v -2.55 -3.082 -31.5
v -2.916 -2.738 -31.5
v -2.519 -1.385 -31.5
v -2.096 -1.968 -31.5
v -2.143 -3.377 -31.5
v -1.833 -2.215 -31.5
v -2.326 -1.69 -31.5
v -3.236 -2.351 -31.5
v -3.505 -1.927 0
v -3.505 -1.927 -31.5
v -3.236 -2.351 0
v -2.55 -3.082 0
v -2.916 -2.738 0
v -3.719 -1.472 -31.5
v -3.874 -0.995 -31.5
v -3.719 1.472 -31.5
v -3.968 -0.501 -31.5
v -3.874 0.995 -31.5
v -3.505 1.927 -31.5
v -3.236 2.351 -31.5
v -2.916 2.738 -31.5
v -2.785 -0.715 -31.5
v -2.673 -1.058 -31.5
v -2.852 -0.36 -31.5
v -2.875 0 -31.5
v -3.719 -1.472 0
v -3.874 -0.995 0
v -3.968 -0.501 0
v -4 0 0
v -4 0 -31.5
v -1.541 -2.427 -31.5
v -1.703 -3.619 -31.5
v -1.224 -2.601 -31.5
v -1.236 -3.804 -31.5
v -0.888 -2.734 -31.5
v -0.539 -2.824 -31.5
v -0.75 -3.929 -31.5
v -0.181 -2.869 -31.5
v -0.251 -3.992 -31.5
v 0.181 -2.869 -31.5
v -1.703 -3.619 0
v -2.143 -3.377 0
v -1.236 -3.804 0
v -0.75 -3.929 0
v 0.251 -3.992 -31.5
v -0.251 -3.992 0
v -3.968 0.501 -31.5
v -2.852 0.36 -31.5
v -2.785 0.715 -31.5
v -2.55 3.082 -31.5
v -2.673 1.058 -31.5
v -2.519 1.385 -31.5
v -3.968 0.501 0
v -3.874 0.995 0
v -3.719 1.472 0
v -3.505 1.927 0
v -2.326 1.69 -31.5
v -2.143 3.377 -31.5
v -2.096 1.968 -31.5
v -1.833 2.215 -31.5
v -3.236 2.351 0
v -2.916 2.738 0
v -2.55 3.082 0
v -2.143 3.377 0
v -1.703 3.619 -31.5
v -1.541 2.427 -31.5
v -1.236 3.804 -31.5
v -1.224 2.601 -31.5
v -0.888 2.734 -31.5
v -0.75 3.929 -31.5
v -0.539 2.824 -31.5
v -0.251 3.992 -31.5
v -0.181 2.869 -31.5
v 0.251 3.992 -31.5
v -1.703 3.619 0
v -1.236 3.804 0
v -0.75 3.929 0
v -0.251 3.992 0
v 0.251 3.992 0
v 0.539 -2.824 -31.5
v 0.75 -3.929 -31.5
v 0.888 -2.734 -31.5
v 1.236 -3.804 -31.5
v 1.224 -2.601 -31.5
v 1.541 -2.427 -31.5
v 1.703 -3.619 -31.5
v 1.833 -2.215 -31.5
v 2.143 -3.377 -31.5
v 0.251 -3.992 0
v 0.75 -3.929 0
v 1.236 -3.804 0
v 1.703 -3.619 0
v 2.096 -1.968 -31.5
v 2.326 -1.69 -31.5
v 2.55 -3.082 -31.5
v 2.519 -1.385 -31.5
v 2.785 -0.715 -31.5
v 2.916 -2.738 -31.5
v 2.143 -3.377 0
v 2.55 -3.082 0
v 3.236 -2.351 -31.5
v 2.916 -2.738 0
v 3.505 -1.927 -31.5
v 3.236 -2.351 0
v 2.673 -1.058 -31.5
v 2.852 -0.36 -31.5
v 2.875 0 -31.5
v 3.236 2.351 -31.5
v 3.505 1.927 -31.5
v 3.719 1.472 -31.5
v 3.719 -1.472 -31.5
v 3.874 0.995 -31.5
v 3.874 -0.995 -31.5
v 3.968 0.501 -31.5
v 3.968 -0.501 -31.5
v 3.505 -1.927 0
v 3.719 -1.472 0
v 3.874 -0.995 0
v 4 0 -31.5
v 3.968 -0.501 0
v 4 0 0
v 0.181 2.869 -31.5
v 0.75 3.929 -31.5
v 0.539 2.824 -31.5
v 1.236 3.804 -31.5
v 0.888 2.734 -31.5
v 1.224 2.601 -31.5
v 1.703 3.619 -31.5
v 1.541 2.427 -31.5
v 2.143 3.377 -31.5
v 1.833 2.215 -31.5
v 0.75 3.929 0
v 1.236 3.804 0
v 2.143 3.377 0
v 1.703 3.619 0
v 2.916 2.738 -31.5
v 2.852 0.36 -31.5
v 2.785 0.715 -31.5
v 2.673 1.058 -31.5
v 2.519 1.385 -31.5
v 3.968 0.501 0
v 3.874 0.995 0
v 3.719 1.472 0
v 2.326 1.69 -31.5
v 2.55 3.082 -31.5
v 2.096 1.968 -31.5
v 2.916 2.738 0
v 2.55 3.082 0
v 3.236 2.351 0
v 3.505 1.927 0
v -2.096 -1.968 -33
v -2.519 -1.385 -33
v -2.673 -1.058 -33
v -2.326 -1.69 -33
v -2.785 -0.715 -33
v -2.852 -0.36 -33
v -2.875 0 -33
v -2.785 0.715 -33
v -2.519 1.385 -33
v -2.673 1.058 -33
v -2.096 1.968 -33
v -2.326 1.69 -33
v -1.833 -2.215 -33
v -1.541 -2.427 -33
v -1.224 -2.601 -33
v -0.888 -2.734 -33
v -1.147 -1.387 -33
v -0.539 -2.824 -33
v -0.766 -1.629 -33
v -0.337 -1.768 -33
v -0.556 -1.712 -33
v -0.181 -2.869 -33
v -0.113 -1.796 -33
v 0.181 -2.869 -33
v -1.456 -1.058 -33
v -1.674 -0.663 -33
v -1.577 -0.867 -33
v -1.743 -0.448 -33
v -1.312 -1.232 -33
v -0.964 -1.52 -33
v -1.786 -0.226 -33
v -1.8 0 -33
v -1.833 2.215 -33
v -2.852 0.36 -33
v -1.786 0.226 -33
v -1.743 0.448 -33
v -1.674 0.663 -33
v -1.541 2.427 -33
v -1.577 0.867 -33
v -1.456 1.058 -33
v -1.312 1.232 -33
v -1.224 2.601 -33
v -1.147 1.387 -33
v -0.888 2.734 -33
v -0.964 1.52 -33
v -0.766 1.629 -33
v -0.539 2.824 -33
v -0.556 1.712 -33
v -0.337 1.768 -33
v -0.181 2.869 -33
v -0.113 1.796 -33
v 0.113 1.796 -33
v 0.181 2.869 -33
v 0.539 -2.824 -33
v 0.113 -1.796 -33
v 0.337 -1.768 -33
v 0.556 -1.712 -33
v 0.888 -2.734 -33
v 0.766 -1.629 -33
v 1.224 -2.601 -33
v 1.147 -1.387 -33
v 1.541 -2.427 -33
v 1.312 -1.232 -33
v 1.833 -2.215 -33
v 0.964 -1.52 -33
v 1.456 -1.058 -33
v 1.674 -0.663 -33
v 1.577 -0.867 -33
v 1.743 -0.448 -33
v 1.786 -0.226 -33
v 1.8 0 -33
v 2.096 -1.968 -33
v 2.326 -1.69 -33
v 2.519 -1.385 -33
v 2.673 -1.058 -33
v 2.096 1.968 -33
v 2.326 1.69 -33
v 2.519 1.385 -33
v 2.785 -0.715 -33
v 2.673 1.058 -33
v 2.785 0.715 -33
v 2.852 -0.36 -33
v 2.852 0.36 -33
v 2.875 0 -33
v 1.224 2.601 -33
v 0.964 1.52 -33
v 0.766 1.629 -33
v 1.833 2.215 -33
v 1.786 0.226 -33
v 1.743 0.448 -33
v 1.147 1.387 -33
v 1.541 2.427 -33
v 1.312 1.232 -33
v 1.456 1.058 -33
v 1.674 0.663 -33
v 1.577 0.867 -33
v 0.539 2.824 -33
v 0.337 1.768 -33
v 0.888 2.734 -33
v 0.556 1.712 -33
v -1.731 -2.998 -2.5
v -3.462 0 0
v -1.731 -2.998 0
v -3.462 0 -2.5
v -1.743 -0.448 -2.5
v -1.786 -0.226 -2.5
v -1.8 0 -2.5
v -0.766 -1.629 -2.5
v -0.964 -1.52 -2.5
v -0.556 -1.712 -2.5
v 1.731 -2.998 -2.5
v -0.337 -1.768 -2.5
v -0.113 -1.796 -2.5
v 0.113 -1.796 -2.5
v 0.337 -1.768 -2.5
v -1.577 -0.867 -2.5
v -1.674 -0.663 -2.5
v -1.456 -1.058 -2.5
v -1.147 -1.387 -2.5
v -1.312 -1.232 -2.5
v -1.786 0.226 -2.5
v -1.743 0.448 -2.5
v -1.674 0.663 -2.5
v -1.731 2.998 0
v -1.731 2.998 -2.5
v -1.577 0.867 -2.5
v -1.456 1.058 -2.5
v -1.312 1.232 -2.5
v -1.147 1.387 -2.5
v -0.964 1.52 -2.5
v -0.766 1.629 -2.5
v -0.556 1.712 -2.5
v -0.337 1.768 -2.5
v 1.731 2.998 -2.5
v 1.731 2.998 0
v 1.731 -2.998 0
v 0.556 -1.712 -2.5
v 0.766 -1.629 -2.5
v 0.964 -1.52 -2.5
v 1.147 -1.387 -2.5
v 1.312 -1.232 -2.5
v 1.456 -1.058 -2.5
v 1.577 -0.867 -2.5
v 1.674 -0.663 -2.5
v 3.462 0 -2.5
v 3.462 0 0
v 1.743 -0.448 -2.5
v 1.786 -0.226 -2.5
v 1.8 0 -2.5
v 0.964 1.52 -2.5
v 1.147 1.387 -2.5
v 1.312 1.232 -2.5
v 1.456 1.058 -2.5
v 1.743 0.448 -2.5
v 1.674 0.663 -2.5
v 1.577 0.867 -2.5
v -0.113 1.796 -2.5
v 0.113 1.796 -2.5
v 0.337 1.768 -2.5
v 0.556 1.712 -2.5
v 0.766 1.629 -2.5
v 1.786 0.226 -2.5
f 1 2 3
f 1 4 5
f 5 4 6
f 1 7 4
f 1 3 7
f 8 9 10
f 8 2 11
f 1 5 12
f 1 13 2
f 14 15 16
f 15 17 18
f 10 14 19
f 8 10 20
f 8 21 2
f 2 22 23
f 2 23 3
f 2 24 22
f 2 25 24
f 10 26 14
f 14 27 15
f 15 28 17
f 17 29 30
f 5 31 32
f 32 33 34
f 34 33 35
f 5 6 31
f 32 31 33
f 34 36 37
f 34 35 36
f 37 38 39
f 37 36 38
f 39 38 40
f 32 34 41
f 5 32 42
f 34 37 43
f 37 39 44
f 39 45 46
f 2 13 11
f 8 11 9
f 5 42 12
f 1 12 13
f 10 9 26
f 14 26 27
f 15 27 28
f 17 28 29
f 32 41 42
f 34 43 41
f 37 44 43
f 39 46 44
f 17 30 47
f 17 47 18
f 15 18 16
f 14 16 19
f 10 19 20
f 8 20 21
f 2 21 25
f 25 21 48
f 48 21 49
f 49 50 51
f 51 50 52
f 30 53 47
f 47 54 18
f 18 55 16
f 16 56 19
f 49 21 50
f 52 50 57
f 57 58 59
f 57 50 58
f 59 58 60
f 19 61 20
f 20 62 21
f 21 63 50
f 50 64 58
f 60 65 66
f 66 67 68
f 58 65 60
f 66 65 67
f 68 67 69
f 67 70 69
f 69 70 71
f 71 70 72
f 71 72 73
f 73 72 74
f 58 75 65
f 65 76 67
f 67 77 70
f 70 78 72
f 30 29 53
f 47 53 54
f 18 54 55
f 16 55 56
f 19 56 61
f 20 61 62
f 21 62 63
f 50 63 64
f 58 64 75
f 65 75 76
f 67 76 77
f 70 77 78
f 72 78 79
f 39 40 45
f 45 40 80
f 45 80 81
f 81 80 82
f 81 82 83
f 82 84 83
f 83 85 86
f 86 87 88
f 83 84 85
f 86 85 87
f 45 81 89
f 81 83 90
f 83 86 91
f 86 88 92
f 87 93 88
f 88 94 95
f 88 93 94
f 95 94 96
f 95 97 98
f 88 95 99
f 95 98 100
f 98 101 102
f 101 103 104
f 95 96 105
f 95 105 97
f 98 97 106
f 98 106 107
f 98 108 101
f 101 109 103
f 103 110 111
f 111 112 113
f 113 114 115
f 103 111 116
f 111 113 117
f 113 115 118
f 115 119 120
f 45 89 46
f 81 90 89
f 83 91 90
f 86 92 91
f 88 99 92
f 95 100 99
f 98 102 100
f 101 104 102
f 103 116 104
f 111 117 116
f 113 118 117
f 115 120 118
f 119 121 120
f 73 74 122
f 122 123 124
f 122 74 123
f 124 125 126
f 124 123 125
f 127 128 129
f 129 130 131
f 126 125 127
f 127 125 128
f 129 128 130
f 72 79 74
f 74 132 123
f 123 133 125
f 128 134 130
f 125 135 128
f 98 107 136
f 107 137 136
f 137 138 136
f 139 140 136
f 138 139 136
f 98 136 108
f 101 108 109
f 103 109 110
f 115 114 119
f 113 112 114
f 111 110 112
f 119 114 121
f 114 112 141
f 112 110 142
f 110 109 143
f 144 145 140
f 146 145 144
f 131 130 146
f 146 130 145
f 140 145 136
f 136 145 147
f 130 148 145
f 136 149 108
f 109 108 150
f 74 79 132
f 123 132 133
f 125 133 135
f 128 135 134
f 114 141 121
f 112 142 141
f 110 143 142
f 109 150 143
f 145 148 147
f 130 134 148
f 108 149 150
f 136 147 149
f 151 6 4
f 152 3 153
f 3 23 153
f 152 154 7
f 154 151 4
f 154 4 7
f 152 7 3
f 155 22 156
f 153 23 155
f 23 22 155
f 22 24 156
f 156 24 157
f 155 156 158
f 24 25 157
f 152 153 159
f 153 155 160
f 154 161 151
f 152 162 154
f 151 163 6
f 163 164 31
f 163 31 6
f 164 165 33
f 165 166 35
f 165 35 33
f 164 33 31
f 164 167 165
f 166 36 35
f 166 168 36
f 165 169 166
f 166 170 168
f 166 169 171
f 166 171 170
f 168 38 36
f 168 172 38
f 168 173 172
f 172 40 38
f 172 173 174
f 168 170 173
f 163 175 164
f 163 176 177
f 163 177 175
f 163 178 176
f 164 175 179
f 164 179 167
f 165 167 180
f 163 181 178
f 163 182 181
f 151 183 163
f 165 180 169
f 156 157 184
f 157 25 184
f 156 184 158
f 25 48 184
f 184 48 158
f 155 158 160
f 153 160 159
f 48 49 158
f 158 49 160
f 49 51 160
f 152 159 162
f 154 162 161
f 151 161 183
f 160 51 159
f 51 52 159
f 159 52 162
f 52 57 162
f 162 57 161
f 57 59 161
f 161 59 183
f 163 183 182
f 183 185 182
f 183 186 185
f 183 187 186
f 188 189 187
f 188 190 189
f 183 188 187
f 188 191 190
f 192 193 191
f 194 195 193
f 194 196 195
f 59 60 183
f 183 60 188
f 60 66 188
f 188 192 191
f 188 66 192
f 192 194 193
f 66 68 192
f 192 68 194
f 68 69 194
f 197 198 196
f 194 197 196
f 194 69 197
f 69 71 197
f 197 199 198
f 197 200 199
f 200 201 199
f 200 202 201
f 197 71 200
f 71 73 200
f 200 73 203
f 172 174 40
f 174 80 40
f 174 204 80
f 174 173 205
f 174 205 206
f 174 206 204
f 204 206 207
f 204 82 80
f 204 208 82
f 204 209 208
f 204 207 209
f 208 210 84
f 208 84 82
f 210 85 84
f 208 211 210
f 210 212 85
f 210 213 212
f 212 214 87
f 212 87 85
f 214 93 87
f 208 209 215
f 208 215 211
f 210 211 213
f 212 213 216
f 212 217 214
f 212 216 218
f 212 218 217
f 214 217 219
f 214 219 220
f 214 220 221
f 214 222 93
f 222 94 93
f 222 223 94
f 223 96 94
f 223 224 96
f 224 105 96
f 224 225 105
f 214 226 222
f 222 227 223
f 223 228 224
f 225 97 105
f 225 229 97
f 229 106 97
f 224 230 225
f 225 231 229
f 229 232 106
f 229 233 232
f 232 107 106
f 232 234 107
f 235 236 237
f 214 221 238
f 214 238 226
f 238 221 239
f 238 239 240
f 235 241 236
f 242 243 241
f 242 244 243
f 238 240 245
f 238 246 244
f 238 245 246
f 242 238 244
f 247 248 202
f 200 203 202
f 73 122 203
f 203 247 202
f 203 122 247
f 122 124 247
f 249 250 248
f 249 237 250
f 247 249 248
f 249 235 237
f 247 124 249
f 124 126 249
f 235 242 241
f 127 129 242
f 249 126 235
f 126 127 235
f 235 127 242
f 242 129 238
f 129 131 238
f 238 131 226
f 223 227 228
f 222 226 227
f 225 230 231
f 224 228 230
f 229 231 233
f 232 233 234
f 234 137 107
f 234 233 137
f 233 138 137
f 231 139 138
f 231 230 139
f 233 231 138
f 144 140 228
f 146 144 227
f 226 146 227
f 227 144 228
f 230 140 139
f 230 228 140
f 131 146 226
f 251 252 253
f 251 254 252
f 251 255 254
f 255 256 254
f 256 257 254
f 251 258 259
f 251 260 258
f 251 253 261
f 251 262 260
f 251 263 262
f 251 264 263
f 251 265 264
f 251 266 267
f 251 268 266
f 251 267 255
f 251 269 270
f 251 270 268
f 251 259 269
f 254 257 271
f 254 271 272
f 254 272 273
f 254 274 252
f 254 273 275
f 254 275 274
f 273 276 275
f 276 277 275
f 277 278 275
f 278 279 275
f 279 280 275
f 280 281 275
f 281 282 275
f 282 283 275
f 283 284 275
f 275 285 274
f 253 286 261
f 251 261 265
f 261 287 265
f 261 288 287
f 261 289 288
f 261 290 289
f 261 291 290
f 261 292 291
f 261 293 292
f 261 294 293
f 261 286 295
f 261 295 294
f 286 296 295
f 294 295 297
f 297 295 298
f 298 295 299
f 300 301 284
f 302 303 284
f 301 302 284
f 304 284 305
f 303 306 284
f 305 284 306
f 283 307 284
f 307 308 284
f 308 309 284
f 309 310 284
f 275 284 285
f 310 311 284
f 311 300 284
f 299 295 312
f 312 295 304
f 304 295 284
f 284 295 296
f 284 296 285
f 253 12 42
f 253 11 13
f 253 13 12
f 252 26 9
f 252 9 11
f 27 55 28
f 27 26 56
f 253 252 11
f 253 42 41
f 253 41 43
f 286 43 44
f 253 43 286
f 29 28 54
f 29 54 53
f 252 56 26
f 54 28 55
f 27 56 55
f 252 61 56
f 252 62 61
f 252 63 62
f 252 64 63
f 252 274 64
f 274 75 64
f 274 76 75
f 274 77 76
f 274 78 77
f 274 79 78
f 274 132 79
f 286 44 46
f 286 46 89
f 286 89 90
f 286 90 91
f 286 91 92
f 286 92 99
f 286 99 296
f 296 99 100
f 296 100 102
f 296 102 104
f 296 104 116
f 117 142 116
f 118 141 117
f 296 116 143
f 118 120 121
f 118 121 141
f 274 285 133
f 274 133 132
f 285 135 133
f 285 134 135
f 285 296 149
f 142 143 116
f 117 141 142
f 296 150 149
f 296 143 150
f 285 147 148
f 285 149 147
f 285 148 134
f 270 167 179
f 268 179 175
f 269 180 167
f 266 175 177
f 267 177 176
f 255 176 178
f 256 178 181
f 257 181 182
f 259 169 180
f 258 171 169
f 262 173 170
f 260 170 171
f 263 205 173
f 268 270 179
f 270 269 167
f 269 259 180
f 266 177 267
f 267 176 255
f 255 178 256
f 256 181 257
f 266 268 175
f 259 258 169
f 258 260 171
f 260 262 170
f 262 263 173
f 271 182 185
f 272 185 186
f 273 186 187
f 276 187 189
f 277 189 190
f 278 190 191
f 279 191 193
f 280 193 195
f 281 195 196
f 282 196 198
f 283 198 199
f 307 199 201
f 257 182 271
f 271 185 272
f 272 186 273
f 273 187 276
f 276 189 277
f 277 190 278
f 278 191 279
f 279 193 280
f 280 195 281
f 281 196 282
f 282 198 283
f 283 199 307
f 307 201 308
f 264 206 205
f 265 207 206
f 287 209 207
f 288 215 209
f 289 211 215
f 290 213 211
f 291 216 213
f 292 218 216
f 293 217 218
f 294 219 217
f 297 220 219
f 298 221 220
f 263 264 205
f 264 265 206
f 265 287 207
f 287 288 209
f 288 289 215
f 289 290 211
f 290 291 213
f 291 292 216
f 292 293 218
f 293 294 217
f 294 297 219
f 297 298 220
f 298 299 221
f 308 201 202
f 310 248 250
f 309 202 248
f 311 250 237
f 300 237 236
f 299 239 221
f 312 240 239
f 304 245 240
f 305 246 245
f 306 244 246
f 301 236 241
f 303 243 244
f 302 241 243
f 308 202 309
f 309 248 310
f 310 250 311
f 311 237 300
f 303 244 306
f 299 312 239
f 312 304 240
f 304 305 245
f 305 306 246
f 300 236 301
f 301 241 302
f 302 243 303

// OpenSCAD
$fn = 50;

difference() {
	union() {
		translate(v = [0, 0, -31.5]) {
			cylinder(h = 34.5, r = 4.0);
		}
		#translate(v = [0, 0, -33.0]) {
			cylinder(h = 33, r = 2.875);
		}
	}
	union() {
		translate(v = [0, 0, 0]) {
			rotate(a = [0, 0, 0]) {
				difference() {
					union() {
						translate(v = [0, 0, -2.5]) {
							linear_extrude(height = 2.5) {
								polygon(points = [[3.4619999999999997, 0.0], [1.7310000000000003, 2.9981799479017264], [-1.7309999999999992, 2.9981799479017264], [-3.4619999999999997, 4.2397272186481365e-16], [-1.7310000000000014, -2.998179947901726], [1.7309999999999977, -2.9981799479017277]]);
							}
						}
					}
					union();
				}
			}
		}
		#cylinder(h = 3, r = 5.0);
		#translate(v = [0, 0, -100.0]) {
			cylinder(h = 200, r = 1.8);
		}
	}
}
